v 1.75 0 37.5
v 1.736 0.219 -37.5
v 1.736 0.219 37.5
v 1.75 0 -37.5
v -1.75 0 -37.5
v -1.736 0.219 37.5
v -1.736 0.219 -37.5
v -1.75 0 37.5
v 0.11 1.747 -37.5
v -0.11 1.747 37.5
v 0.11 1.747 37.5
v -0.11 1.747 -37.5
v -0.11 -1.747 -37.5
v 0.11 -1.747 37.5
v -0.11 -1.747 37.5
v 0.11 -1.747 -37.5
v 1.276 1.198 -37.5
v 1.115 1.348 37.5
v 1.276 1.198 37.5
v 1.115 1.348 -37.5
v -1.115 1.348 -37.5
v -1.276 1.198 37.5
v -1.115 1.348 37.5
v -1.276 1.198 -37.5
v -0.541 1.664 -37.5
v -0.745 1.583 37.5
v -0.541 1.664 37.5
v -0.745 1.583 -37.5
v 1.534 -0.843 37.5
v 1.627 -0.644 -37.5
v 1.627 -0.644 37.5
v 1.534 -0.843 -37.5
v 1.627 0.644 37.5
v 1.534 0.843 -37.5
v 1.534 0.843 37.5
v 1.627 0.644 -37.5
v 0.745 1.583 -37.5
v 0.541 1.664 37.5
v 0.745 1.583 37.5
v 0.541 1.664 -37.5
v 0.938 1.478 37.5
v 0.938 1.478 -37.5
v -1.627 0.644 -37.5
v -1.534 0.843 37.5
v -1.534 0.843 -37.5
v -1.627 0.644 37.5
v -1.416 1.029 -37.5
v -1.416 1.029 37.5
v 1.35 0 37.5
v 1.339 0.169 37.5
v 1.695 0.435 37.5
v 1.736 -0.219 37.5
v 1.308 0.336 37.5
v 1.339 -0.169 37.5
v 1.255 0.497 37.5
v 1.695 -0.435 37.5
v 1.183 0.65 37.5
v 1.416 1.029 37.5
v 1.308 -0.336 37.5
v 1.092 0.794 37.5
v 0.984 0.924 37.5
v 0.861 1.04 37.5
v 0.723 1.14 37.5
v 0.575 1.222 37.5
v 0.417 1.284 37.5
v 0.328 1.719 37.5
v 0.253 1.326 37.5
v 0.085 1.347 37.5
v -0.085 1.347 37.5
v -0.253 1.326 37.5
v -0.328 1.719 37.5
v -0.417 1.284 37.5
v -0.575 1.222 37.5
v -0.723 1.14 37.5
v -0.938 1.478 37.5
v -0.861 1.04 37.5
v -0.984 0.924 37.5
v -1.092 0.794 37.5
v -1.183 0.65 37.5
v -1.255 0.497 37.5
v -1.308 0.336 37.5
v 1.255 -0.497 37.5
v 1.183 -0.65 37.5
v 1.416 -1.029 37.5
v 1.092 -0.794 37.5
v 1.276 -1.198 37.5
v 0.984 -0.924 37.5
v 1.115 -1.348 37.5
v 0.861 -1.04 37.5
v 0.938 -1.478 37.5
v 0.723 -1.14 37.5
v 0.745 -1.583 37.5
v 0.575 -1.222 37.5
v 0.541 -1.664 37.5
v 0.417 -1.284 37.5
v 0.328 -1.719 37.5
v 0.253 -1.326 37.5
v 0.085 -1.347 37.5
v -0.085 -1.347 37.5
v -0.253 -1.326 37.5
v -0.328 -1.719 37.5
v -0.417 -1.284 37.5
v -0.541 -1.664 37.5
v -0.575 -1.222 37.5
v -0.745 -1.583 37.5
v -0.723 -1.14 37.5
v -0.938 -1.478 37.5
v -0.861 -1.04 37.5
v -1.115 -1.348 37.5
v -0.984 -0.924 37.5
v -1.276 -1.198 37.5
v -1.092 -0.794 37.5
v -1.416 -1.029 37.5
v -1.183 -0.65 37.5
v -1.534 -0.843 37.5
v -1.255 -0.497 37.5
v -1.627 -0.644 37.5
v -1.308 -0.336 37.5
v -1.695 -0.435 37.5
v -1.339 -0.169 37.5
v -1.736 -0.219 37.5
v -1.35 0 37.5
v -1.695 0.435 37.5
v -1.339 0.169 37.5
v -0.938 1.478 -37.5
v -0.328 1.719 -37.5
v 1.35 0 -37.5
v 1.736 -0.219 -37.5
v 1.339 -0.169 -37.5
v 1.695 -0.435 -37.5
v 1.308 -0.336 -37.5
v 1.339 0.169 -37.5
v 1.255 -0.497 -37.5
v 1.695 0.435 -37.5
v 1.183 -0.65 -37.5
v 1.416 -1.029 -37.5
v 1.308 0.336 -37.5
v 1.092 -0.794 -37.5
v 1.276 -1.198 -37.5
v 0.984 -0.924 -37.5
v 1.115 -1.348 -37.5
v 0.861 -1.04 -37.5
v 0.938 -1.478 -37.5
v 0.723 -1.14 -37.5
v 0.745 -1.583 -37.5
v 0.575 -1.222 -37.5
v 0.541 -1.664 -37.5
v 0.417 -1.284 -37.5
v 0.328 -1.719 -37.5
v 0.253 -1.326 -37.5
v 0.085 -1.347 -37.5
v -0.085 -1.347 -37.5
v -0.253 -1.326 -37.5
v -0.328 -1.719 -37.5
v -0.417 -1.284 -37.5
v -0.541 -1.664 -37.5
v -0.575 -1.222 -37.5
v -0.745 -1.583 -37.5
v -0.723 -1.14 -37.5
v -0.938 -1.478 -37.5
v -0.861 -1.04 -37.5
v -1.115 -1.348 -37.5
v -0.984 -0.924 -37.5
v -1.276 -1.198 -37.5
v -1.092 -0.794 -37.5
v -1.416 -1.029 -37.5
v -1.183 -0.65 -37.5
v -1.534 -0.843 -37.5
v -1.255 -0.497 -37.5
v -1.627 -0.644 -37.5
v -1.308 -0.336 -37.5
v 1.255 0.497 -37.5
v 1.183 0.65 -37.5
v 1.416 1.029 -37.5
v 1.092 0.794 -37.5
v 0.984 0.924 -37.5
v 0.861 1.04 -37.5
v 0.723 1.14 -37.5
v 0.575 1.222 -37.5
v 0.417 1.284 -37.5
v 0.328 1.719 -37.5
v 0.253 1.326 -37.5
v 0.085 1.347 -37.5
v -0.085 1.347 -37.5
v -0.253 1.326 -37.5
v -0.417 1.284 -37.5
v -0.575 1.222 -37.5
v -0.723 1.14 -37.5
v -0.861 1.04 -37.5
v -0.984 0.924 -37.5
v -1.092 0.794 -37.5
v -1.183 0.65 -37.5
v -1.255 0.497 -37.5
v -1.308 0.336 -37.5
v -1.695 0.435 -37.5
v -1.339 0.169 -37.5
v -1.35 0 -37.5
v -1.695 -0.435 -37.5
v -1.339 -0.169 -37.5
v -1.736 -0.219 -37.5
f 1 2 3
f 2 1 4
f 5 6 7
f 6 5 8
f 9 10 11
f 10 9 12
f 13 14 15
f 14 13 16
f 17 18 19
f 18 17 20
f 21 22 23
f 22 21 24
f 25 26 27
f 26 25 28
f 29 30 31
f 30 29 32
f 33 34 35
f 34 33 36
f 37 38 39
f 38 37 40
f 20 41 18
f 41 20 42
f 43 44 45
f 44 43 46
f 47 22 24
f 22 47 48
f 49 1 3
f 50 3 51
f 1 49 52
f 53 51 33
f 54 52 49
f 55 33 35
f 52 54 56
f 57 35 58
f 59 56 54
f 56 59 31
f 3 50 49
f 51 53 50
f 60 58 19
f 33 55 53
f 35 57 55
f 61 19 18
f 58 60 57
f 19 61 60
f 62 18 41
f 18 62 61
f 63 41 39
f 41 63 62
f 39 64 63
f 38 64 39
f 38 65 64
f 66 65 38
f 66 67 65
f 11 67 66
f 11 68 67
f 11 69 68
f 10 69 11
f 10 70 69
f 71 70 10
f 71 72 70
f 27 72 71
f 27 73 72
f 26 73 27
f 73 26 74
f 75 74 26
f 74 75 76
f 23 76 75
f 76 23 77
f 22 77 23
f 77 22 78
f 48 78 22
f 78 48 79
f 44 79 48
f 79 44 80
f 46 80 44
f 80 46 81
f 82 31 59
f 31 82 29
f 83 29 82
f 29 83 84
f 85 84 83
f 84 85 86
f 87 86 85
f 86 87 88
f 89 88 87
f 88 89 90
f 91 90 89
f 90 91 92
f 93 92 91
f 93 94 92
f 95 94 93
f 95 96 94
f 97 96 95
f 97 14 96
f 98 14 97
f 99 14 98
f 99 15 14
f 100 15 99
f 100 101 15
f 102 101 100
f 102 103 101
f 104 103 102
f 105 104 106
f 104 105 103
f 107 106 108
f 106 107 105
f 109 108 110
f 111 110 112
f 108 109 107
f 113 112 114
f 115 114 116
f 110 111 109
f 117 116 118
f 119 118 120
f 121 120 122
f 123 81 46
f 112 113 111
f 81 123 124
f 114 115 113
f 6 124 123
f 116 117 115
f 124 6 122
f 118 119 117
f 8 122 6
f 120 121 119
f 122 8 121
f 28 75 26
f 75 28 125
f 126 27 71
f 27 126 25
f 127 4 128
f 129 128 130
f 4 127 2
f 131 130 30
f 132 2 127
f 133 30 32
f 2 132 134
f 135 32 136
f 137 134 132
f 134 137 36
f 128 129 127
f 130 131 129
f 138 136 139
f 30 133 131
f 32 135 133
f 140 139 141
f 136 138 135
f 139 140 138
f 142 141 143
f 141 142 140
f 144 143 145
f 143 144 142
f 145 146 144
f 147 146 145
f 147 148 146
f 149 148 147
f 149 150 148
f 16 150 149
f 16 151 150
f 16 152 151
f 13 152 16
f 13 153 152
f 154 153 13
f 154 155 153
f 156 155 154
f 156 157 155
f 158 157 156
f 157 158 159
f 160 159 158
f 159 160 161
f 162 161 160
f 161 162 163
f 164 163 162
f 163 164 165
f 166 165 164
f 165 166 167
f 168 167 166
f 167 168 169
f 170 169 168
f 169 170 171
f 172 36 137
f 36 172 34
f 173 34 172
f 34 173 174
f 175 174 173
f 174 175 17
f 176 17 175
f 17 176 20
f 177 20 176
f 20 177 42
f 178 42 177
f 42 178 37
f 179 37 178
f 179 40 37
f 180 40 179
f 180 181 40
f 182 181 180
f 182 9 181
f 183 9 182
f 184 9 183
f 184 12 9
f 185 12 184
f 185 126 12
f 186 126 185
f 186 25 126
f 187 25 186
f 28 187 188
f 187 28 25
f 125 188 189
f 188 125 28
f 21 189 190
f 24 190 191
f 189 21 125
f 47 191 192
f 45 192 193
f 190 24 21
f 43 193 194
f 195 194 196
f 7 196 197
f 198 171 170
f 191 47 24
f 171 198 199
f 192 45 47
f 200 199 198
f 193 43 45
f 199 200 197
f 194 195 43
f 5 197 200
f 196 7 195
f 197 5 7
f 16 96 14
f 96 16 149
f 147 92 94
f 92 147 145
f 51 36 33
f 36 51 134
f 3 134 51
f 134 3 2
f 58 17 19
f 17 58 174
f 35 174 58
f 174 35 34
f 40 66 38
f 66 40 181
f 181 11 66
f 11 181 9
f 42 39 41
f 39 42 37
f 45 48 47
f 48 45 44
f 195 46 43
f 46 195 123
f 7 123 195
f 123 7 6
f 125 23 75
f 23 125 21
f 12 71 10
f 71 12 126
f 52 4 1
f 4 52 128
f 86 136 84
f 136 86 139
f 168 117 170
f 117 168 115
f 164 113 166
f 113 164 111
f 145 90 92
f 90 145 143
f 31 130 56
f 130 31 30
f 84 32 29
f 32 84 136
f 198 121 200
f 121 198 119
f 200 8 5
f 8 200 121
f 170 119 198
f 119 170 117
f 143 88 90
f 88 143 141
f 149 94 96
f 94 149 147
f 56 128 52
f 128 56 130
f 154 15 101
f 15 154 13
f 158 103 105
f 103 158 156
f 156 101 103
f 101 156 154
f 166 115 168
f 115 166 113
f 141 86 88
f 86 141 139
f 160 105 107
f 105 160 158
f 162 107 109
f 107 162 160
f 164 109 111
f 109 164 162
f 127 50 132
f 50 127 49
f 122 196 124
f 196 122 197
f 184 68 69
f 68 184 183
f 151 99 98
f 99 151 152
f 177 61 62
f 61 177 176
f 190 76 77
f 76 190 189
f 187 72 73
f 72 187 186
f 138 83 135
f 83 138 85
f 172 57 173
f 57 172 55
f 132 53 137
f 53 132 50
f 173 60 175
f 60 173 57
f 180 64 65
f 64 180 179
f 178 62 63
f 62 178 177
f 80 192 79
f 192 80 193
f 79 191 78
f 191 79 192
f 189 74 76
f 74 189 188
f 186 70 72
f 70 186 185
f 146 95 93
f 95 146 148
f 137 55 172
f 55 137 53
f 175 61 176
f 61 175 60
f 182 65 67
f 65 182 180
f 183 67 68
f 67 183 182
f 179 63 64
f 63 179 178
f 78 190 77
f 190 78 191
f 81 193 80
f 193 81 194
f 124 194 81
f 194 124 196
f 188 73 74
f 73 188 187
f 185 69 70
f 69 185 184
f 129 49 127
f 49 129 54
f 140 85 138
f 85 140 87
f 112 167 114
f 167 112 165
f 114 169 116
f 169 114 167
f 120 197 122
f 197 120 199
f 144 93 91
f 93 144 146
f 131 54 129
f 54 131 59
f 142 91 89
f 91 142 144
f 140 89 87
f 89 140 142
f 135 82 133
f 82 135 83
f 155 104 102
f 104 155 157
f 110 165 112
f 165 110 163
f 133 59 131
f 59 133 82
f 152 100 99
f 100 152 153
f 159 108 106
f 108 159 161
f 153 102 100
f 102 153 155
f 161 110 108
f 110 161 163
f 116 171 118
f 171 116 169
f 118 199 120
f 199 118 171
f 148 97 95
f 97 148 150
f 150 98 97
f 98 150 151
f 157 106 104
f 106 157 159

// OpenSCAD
$fn = 50;


difference() {
	union() {
		translate(v = [0, 0, -37.5000000000]) {
			cylinder(h = 75, r = 1.7500000000);
		}
	}
	union() {
		translate(v = [0, 0, -100.0000000000]) {
			cylinder(h = 200, r = 1.3500000000);
		}
	}
}
